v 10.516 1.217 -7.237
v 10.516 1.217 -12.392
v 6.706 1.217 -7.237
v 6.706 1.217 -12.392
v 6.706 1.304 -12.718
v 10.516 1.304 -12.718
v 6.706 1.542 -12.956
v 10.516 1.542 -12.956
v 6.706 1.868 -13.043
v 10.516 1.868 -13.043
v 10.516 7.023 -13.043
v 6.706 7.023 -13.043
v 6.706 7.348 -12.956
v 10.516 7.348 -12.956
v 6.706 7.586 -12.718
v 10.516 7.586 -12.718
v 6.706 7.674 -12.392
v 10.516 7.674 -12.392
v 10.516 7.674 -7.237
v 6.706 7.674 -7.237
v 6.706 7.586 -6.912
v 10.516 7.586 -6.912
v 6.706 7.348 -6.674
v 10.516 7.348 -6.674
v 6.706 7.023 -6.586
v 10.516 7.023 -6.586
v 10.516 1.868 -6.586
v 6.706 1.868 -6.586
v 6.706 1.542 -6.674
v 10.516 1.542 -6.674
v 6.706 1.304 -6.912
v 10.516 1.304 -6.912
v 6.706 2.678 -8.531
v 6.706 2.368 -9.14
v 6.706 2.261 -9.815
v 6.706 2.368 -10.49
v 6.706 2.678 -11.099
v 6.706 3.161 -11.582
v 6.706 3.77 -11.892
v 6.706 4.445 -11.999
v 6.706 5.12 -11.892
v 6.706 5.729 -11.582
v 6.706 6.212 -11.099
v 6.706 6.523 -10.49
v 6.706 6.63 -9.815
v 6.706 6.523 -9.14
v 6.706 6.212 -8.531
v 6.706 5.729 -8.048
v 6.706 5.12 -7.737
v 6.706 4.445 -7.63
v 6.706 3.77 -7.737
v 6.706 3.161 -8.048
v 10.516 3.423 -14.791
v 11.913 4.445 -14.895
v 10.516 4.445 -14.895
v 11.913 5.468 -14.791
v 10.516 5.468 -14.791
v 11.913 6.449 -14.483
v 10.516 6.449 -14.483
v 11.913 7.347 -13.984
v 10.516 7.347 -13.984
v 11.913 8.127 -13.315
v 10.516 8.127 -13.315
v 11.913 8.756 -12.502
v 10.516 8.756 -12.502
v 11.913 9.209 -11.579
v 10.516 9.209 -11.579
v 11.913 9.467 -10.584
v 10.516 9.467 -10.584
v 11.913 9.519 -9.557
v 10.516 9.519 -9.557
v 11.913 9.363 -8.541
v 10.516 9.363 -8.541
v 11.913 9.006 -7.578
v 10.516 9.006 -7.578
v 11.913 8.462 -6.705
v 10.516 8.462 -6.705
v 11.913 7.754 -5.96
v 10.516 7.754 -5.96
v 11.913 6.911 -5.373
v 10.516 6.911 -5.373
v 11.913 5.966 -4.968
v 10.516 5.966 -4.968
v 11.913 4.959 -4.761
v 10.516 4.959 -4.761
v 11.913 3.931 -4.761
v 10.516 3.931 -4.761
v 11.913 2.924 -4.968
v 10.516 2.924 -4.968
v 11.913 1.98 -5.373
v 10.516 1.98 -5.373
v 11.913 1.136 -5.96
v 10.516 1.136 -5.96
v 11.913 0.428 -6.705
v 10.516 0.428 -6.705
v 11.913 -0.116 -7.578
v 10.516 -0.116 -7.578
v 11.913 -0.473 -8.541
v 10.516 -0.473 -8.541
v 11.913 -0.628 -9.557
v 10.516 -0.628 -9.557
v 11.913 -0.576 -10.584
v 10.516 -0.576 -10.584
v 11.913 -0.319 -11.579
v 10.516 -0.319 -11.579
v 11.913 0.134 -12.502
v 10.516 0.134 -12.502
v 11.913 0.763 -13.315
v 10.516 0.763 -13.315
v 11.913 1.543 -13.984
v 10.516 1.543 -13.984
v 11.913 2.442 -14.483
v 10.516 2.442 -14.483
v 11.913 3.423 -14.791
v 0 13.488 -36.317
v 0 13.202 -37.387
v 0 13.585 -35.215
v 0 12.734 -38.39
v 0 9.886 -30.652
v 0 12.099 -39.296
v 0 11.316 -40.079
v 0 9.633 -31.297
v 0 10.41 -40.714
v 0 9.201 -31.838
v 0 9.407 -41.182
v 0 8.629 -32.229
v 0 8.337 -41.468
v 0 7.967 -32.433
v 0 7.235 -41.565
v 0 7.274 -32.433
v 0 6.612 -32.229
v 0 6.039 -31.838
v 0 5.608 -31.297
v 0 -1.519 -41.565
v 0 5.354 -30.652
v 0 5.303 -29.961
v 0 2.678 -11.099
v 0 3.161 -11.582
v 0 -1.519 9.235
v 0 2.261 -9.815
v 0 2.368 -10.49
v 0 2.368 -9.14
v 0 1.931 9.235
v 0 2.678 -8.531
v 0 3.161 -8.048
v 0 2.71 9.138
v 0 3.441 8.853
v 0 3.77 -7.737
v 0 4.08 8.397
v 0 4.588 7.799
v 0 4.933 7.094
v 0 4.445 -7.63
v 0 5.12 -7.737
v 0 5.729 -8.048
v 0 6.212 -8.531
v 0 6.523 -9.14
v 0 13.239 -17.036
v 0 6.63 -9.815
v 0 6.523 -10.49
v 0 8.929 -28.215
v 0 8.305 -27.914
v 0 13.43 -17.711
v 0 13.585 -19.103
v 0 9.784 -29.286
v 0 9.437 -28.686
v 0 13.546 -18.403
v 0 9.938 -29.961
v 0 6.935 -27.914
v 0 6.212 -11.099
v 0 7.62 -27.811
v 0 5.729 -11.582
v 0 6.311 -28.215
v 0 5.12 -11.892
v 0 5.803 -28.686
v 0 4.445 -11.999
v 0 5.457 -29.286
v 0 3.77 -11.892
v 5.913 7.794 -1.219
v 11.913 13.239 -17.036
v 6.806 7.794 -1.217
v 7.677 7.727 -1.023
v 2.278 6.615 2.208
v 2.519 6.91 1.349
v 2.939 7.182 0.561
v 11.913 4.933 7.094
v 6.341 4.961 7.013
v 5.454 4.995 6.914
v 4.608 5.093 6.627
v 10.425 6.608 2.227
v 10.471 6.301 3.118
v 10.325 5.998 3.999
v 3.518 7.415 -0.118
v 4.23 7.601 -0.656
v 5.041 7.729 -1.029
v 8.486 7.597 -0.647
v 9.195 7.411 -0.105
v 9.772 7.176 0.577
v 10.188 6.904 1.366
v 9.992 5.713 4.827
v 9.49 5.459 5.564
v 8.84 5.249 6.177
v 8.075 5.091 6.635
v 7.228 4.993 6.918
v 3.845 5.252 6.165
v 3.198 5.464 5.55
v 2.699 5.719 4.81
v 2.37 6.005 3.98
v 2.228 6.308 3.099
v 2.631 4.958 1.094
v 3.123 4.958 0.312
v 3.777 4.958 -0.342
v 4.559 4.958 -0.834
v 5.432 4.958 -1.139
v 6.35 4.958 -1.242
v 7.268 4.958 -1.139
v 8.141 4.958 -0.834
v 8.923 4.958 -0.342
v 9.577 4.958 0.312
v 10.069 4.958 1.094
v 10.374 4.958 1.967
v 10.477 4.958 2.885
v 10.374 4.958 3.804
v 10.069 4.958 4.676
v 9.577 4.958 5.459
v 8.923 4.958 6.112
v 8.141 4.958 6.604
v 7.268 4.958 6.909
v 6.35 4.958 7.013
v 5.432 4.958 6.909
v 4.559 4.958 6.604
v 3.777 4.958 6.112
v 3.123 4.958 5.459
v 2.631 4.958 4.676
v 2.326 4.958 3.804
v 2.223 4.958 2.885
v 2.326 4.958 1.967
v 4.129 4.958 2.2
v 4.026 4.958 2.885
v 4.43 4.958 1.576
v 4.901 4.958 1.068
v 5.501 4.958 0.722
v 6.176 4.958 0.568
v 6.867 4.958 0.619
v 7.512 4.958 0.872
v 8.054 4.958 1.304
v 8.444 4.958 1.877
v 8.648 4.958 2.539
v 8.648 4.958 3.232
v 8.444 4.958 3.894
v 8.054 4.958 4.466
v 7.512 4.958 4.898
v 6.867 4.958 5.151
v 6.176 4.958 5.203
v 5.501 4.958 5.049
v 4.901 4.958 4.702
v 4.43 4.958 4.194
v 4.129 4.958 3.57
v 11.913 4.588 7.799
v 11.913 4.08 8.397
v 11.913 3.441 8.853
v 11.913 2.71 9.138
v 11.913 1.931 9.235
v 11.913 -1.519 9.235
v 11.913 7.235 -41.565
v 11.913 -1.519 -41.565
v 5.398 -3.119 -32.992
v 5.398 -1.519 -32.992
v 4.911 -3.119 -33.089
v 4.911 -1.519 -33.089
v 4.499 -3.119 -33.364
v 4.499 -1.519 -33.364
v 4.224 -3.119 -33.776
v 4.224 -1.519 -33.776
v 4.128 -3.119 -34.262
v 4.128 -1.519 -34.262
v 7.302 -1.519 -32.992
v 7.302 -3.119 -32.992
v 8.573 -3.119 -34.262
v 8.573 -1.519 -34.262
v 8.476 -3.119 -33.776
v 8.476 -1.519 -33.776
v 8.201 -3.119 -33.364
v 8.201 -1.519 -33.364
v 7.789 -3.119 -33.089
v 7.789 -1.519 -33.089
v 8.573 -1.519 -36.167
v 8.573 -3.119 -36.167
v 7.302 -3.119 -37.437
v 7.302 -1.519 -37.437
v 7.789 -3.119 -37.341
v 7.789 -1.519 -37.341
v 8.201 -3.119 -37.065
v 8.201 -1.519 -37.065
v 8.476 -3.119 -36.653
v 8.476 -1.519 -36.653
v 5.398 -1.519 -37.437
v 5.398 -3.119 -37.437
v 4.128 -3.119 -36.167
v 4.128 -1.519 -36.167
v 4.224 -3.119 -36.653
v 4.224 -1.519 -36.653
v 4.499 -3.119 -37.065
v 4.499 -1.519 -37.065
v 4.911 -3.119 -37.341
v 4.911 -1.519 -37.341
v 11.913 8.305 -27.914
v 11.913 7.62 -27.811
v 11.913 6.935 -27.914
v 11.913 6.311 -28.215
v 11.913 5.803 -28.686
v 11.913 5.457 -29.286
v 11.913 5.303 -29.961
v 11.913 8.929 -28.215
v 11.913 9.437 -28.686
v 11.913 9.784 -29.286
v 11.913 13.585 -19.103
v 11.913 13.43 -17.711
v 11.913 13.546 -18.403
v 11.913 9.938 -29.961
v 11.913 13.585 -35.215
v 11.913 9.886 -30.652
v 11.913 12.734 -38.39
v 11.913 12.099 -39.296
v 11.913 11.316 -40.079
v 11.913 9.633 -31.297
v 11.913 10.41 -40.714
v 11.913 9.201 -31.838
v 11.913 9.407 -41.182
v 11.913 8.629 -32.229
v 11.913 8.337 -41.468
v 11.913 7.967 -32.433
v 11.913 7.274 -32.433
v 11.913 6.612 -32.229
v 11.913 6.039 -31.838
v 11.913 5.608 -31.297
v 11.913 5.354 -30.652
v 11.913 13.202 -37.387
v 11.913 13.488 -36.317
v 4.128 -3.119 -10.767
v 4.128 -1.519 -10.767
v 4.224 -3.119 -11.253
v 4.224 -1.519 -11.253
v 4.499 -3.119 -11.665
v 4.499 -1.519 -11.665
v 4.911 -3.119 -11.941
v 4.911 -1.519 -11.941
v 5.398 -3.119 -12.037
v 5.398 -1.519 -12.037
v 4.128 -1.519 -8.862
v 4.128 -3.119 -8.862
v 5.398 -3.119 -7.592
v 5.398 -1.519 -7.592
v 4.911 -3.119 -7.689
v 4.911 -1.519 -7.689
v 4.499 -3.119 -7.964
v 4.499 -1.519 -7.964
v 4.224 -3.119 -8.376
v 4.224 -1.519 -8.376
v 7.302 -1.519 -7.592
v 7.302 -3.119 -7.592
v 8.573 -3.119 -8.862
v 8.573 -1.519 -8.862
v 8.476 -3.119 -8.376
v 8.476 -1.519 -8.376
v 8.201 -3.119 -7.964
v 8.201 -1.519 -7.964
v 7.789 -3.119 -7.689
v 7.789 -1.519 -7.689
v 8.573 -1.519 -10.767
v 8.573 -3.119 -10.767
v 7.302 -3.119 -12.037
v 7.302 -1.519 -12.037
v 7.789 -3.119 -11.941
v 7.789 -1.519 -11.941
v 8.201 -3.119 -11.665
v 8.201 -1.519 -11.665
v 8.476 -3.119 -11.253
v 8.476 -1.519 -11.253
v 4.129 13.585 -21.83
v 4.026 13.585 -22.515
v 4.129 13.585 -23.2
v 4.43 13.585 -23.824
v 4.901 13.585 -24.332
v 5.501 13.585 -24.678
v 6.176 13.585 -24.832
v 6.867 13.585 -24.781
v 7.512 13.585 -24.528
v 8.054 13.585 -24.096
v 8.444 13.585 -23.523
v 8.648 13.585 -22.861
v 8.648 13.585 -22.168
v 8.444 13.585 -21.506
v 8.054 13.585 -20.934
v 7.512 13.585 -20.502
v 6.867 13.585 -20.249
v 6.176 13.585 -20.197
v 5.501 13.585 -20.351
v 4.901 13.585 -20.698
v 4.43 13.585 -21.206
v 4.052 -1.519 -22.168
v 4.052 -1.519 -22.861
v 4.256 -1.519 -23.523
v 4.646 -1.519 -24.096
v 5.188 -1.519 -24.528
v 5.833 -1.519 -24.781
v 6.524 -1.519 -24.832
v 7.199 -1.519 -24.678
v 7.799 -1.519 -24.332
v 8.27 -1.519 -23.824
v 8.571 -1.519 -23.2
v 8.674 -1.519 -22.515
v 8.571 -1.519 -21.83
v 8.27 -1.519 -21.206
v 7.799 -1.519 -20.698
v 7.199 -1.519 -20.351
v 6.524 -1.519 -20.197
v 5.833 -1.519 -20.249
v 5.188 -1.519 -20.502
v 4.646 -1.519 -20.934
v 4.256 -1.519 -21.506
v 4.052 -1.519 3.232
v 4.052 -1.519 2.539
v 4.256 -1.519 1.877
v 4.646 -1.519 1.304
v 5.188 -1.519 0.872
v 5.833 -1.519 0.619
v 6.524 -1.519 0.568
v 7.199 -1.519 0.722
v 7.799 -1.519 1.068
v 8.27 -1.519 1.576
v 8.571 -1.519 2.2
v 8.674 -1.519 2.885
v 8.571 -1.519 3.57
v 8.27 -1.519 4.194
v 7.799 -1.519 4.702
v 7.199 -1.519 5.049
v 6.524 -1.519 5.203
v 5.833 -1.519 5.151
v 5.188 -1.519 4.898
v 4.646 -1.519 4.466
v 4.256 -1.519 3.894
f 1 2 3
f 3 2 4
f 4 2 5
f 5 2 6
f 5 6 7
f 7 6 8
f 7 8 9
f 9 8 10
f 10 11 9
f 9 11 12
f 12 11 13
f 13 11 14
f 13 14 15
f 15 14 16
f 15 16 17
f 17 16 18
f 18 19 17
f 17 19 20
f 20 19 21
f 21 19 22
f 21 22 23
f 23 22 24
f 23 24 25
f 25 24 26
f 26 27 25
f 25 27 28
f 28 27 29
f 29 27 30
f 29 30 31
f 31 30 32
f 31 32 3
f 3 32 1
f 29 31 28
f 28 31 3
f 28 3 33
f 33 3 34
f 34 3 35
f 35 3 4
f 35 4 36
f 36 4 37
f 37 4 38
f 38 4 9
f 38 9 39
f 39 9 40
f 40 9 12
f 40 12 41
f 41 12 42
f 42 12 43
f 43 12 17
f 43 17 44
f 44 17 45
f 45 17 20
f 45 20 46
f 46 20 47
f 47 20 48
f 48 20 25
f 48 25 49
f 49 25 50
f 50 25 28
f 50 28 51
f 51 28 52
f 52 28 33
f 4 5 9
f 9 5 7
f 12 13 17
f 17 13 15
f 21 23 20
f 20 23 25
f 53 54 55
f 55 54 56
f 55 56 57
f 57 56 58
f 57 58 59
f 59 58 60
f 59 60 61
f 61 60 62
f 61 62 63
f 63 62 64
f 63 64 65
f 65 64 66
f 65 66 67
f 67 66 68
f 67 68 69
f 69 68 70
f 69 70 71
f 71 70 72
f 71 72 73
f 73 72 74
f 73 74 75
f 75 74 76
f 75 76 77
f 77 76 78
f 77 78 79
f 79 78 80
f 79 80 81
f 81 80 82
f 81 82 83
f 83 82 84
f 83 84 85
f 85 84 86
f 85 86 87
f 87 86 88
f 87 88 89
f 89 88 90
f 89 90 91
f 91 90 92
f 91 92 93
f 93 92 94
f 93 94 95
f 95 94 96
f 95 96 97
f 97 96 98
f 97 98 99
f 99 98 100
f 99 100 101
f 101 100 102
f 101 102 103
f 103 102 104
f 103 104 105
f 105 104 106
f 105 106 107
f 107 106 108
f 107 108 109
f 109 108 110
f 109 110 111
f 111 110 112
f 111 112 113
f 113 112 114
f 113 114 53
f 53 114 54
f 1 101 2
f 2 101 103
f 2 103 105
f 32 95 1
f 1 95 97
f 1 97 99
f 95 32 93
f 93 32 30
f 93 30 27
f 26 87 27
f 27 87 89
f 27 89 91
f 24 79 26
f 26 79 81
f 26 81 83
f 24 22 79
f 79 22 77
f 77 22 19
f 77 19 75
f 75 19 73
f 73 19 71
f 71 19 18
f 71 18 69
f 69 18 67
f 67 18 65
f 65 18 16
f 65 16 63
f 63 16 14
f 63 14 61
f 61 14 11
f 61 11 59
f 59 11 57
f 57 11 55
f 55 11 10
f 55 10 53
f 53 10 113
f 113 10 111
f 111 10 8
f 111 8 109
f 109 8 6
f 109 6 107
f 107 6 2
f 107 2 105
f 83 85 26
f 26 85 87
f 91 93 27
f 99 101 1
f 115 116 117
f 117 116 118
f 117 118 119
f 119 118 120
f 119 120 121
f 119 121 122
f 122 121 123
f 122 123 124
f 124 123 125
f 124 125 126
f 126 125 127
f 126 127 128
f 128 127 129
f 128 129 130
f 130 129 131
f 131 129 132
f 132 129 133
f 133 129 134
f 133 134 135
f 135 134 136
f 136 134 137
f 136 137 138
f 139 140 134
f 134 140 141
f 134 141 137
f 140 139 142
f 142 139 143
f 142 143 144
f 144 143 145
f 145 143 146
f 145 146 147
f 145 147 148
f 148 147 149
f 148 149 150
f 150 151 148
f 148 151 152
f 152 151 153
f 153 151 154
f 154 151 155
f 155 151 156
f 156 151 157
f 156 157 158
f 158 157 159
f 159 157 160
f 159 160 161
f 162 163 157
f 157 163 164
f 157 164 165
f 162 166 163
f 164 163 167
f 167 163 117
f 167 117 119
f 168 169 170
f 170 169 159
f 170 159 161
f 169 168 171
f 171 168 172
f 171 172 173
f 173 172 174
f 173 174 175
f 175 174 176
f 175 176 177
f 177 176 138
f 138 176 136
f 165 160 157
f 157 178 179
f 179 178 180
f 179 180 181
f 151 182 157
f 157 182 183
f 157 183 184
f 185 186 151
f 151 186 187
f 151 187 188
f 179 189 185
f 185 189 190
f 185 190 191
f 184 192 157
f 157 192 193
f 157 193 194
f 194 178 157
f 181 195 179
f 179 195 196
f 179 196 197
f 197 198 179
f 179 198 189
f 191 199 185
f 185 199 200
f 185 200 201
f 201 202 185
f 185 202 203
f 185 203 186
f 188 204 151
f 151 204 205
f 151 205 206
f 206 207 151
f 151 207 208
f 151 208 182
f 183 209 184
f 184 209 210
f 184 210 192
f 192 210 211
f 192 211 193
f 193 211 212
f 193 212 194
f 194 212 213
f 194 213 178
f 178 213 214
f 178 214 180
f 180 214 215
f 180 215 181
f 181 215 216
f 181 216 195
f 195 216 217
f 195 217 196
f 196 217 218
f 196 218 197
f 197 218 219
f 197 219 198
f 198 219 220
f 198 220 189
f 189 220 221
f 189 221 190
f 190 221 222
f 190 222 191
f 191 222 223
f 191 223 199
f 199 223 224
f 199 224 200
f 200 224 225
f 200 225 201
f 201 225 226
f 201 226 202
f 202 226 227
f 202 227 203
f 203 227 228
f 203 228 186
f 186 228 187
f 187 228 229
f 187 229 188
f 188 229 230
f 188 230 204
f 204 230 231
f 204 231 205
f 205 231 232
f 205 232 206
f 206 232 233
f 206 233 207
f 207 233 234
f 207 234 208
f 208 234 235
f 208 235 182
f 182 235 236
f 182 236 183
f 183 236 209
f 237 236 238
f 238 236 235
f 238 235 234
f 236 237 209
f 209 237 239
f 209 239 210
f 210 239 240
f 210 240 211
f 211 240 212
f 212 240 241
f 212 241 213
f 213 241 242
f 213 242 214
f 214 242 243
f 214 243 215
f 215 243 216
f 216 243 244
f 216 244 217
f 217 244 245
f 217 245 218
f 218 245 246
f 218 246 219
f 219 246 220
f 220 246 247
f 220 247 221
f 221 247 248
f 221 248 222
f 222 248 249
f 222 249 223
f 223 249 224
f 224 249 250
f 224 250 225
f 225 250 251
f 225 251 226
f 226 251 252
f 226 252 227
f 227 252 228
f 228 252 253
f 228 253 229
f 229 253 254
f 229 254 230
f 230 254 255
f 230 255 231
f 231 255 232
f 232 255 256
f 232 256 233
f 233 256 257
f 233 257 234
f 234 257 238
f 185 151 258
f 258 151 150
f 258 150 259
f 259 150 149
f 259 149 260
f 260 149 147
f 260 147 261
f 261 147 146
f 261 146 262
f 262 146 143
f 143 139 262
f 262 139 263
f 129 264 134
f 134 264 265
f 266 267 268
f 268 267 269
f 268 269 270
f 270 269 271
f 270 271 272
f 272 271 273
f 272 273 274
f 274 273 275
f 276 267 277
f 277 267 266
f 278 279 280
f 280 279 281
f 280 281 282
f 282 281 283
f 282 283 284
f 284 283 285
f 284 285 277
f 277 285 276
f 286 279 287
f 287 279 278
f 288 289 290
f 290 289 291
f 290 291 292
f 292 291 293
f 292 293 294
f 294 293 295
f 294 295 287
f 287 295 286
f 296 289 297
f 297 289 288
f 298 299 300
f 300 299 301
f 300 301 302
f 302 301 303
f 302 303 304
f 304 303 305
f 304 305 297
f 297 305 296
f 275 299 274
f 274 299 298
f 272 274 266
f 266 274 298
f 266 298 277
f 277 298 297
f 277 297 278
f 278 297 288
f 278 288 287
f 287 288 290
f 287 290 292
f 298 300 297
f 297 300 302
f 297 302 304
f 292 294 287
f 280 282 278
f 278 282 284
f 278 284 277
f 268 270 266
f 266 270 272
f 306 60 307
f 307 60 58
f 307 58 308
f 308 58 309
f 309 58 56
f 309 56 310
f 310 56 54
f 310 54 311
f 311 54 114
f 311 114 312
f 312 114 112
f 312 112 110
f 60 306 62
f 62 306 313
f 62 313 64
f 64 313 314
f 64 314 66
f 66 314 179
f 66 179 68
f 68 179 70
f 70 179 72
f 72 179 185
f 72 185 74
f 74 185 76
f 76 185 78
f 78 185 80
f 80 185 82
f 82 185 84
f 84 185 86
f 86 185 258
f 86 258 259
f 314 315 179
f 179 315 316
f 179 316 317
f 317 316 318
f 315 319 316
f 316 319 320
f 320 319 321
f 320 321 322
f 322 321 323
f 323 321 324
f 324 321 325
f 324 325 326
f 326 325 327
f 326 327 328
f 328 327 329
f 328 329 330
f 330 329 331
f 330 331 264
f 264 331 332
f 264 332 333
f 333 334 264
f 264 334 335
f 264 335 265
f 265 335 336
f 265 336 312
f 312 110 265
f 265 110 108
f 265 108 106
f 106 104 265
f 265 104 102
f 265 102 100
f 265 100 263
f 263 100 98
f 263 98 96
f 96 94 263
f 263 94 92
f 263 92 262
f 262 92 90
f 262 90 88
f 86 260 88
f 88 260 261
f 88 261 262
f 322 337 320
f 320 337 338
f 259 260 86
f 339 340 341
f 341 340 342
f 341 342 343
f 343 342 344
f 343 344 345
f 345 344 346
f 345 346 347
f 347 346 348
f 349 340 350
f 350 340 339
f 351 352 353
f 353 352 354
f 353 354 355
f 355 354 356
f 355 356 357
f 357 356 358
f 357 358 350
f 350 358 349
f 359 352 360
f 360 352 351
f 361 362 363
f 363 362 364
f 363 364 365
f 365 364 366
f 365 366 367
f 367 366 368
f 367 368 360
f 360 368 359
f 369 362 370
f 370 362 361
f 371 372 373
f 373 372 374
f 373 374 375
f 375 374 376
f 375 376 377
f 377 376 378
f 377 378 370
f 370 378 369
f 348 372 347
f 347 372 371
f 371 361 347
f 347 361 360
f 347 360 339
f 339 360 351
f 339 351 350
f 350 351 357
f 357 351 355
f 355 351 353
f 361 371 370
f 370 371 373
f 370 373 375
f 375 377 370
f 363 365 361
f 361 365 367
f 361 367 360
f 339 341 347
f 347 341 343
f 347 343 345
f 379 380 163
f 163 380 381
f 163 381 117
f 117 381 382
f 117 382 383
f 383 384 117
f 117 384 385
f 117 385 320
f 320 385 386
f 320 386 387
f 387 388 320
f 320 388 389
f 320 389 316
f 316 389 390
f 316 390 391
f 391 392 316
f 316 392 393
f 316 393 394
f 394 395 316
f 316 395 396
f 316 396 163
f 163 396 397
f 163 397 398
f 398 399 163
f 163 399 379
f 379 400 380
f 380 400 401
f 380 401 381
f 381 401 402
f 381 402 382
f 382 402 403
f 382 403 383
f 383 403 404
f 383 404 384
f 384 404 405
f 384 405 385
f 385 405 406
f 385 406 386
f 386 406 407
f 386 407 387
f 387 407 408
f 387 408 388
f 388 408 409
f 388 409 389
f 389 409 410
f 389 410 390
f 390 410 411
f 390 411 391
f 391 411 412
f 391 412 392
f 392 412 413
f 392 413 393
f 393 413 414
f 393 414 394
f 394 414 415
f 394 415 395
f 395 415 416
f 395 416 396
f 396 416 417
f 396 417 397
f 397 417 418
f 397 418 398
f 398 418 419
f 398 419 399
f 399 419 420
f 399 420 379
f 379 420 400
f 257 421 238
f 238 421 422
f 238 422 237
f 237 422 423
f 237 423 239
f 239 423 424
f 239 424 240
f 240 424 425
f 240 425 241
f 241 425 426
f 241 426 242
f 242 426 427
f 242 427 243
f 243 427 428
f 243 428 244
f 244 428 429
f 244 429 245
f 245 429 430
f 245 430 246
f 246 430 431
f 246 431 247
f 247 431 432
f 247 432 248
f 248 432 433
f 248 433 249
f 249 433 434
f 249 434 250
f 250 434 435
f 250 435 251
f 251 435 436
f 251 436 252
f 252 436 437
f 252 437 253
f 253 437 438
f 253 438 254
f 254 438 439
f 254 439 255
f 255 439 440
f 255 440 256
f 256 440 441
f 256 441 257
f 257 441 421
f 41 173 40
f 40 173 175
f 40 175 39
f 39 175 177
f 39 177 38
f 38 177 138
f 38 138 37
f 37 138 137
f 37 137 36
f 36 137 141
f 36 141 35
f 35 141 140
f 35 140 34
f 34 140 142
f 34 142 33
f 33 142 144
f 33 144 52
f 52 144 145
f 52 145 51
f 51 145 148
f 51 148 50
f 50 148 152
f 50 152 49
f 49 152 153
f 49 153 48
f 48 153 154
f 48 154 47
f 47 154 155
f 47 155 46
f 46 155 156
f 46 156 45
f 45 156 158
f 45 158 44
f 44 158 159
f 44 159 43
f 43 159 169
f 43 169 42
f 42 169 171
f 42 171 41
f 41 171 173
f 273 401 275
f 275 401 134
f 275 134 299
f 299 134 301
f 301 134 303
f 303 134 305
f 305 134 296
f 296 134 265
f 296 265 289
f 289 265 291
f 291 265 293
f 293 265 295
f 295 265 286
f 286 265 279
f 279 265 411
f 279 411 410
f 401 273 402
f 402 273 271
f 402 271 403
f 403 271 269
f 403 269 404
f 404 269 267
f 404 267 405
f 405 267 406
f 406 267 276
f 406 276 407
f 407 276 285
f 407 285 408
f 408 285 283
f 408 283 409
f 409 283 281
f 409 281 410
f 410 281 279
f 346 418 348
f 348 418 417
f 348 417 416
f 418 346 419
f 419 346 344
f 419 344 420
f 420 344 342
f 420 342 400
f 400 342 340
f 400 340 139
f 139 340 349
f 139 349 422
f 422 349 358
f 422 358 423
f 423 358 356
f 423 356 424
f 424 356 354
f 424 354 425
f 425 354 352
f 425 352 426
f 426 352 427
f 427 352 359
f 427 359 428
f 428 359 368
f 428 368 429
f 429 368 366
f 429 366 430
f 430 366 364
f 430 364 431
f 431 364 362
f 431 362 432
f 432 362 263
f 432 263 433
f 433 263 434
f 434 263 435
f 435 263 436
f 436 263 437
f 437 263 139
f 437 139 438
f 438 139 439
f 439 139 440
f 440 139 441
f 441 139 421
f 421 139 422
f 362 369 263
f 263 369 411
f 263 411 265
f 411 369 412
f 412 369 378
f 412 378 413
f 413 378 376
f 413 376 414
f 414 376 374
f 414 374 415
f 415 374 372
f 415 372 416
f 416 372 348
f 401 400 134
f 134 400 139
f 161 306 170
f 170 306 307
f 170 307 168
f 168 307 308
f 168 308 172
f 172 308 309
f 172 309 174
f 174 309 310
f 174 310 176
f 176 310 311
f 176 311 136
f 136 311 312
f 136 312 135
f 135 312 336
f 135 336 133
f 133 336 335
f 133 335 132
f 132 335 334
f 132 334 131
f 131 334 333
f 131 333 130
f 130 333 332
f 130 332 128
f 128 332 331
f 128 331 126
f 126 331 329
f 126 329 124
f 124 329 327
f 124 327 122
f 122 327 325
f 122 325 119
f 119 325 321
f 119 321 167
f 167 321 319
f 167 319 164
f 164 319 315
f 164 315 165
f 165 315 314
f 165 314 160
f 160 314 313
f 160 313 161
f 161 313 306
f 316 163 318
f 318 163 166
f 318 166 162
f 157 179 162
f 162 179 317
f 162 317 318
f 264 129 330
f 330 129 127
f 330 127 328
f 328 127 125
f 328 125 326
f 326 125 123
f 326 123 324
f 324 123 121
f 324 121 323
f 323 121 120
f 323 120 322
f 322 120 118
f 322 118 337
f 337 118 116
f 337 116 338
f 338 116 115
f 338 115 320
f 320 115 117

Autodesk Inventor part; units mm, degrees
ref_plane "YZ Plane" through (0, 0, 0) normal (1, 0, 0) x (0, 1, 0)
ref_plane "XZ Plane" through (0, 0, 0) normal (0, 1, 0) x (-1, 0, 0)
ref_plane "XY Plane" through (0, 0, 0) normal (0, 0, 1) x (1, 0, 0)
sketch "Sketch1" plane through (0, 0, 0) normal (1, 0, 0) x (0, 1, 0)
  line L0 (-1.51927, 9.235223) -> (-1.51927, -28.864777)
  circle A0 centre (4.445248, -9.814777) radius 2.1844
  circle A1 centre (4.445248, -9.814777) radius 5.964518
  line L1 (4.445248, -9.814777) -> (-1.51927, -9.814777)
  line L2 (-1.51927, -9.814777) -> (-1.51927, 9.235223)
  line L3 (-1.51927, 9.235223) -> (-1.51927, -28.864777)
  line L4 (-1.51927, 9.235223) -> (1.02073, 9.235223)
  line L5 (1.02073, 9.235223) -> (9.344761, -6.41327)
  line L6 (-1.51927, -28.864777) -> (1.02073, -28.864777)
  line L7 (1.02073, -28.864777) -> (9.344761, -13.216284)
  point P0 (0, 0)
  dimension "d0" = 5.96452
  dimension "d1" = 19.05
  dimension "d2" = 38.1
  dimension "d3" = 2.54
extrude "Extrusion1" add sketch "Sketch1" along normal blind 11.9126
sketch "Sketch2" plane through (0, -1.51927, -28.864777) normal (0, -1, 0) x (1, 0, 0)
  line L0 (0, 38.1) -> (0, 0) projected
  line L1 (0, 0) -> (11.9126, 0) projected
  line L2 (11.9126, 38.1) -> (11.9126, 0) projected
  line L3 (0, 38.1) -> (11.9126, 38.1) projected
  line L4 (0, 38.1) -> (6.35, 38.1)
  line L5 (6.35, 38.1) -> (6.35, 0)
  line L6 (6.35, 38.1) -> (6.35, 31.75)
  line L7 (6.35, 31.75) -> (6.35, 6.35)
  line L8 (6.35, 6.35) -> (6.35, 0)
  circle A0 centre (6.35, 31.75) radius 2.3241
  circle A1 centre (6.35, 6.35) radius 2.3241
  circle A2 centre (6.35, 19.05) radius 2.2225
  point P0 (0, 28.864777)
  dimension "d6" = 6.35
  dimension "d7" = 6.35
  dimension "d8" = 25.4
  dimension "d9" = 4.6482
  dimension "d10" = 4.445
extrude "Extrusion2" cut sketch "Sketch2" against normal through all contours A0 L5 | L5 A0 | A1 L5 | L5 A1
sketch "Sketch3" plane through (11.9126, 0, 0) normal (1, 0, 0) x (0, 0, -1)
  line L0 (28.864777, -1.51927) -> (28.864777, 1.02073)
  line L1 (28.864777, 1.02073) -> (13.216284, 9.344761)
  arc A0 (13.216284, 9.344761) -> (6.41327, 9.344761) centre (9.814777, 4.445248) ccw
  line L2 (6.41327, 9.344761) -> (-9.235223, 1.02073)
  line L3 (-9.235223, 1.02073) -> (-9.235223, -1.51927)
  line L4 (-9.235223, -1.51927) -> (28.864777, -1.51927)
  circle A1 centre (9.814777, 4.445248) radius 2.1844
  line L5 (9.814777, 10.409766) -> (28.864777, 10.409766)
  line L6 (28.864777, 10.409766) -> (28.864777, -1.51927)
  line L7 (20.190677, 5.634815) -> (24.838877, 3.16226)
  line L8 (24.838877, -1.51927) -> (20.190677, -1.51927)
  line L9 (22.514777, -1.51927) -> (22.514777, 10.409766)
  line L10 (22.514777, 10.409766) -> (35.214777, 10.409766)
  line L11 (35.214777, 10.409766) -> (35.214777, -1.51927)
  line L12 (35.214777, -1.51927) -> (28.864777, -1.51927)
  line L13 (-9.235223, 1.02073) -> (-9.235223, 4.19573)
  line L14 (-9.235223, 4.19573) -> (7.873428, 10.084986)
  point P0 (0, 0)
  dimension "d13" = 12.7
  dimension "d14" = 3.175
extrude "Extrusion3" add sketch "Sketch3" against normal up to surface (11.9126 mm away) contours L0 L6 L10 L11 L12 | L1 L9 L5 L6 | L1 A0 L5 L9 | A0 L2 L13 L14
sketch "Sketch4" plane through (0, -1.51927, 9.235223) normal (0, -1, 0) x (1, 0, 0)
  circle A0 centre (6.35, -31.75) radius 2.3241 projected
  circle A1 centre (6.35, -6.35) radius 2.3241 projected
  line L0 (0, 0) -> (0, -44.45) projected
  line L1 (11.9126, -44.45) -> (0, -44.45) projected
  line L2 (11.9126, 0) -> (11.9126, -44.45) projected
  line L3 (0, 0) -> (11.9126, 0) projected
  point P0 (0, -9.235223)
extrude "Extrusion4" cut sketch "Sketch4" against normal through all contours A0 | A1
sketch "Sketch6" plane through (0, -1.51927, 9.235223) normal (0, -1, 0) x (1, 0, 0)
  line L0 (11.9126, -16.8656) -> (0, -16.8656) projected
  circle A0 centre (6.35, -31.75) radius 2.3241 projected
  circle A1 centre (6.35, -6.35) radius 2.3241 projected
  line L1 (0, 0) -> (0, -44.45) projected
  line L2 (11.9126, -44.45) -> (0, -44.45) projected
  line L3 (11.9126, 0) -> (11.9126, -44.45) projected
  line L4 (0, 0) -> (11.9126, 0) projected
  line L5 (6.35, -6.35) -> (6.35, -19.05)
  circle A2 centre (6.35, -19.05) radius 2.2225
  line L6 (7.3025, -16.8275) -> (5.3975, -16.8275)
  line L7 (4.1275, -18.0975) -> (4.1275, -20.0025)
  line L8 (5.3975, -21.2725) -> (7.3025, -21.2725)
  line L9 (8.5725, -20.0025) -> (8.5725, -18.0975)
  arc A3 (8.5725, -18.0975) -> (7.3025, -16.8275) centre (7.3025, -18.0975) ccw
  arc A4 (7.3025, -21.2725) -> (8.5725, -20.0025) centre (7.3025, -20.0025) ccw
  arc A5 (5.3975, -16.8275) -> (4.1275, -18.0975) centre (5.3975, -18.0975) ccw
  arc A6 (4.1275, -20.0025) -> (5.3975, -21.2725) centre (5.3975, -20.0025) ccw
  point P0 (0, -9.235223)
  dimension "d20" = 12.7
  dimension "d21" = 4.445
  dimension "d22" = 1.27
sketch "Sketch6 outline for Extrusion5" plane through (0, -1.51927, 9.235223) normal (0, -1, 0) x (1, 0, 0)
  arc A0 (4.1275, -20.0025) -> (5.3975, -21.2725) centre (5.3975, -20.0025) ccw
  line L0 (4.1275, -18.0975) -> (4.1275, -20.0025)
  arc A1 (5.3975, -16.8275) -> (4.1275, -18.0975) centre (5.3975, -18.0975) ccw
  line L1 (7.3025, -16.8275) -> (5.3975, -16.8275)
  arc A2 (8.5725, -18.0975) -> (7.3025, -16.8275) centre (7.3025, -18.0975) ccw
  line L2 (8.5725, -20.0025) -> (8.5725, -18.0975)
  arc A3 (7.3025, -21.2725) -> (8.5725, -20.0025) centre (7.3025, -20.0025) ccw
  line L3 (5.3975, -21.2725) -> (7.3025, -21.2725)
extrude "Extrusion5" add sketch "Sketch6 outline for Extrusion5" along normal blind 1.6002
sketch "Sketch7" plane through (0, -1.51927, 9.235223) normal (0, -1, 0) x (1, 0, 0)
  arc A0 (4.1275, -20.0025) -> (5.3975, -21.2725) centre (5.3975, -20.0025) ccw projected
  line L0 (4.1275, -20.0025) -> (4.1275, -18.0975) projected
  arc A1 (5.3975, -16.8275) -> (4.1275, -18.0975) centre (5.3975, -18.0975) ccw projected
  line L1 (5.3975, -16.8275) -> (7.3025, -16.8275) projected
  arc A2 (8.5725, -18.0975) -> (7.3025, -16.8275) centre (7.3025, -18.0975) ccw projected
  line L2 (8.5725, -18.0975) -> (8.5725, -20.0025) projected
  arc A3 (7.3025, -21.2725) -> (8.5725, -20.0025) centre (7.3025, -20.0025) ccw projected
  line L3 (7.3025, -21.2725) -> (5.3975, -21.2725) projected
  circle A4 centre (6.35, -31.75) radius 2.3241 projected
  circle A5 centre (6.35, -6.35) radius 2.3241 projected
  line L4 (0, 0) -> (0, -44.45) projected
  line L5 (11.9126, -44.45) -> (0, -44.45) projected
  line L6 (11.9126, 0) -> (11.9126, -44.45) projected
  line L7 (0, 0) -> (11.9126, 0) projected
  line L8 (11.9126, -44.45) -> (11.9126, -50.8)
  line L9 (11.9126, 0) -> (11.9126, -44.45) projected
  line L10 (11.9126, -50.8) -> (0, -50.8)
  line L11 (0, -50.8) -> (0, -44.45)
  line L12 (6.35, -31.75) -> (6.35, -44.45)
  circle A6 centre (6.35, -44.45) radius 2.2225
  line L13 (7.3025, -42.2275) -> (5.3975, -42.2275)
  line L14 (4.1275, -43.4975) -> (4.1275, -45.4025)
  line L15 (5.3975, -46.6725) -> (7.3025, -46.6725)
  line L16 (8.5725, -45.4025) -> (8.5725, -43.4975)
  arc A7 (8.5725, -43.4975) -> (7.3025, -42.2275) centre (7.3025, -43.4975) ccw
  arc A8 (7.3025, -46.6725) -> (8.5725, -45.4025) centre (7.3025, -45.4025) ccw
  arc A9 (4.1275, -45.4025) -> (5.3975, -46.6725) centre (5.3975, -45.4025) ccw
  arc A10 (5.3975, -42.2275) -> (4.1275, -43.4975) centre (5.3975, -43.4975) ccw
  point P0 (0, -9.235223)
  dimension "d25" = 6.35
  dimension "d26" = 12.7
  dimension "d27" = 4.445
  dimension "d28" = 1.27
extrude "Extrusion6" add sketch "Sketch7" against normal up to surface (11.929036 mm away) contours L5 L14 A9 L15 A8 L16 L8 L10 L11 | L5 A6 | A6 L15 A9 L14 | A6 L16 A8 L15
extrude "Extrusion7" add sketch "Sketch7" along normal blind 1.6002 contours A6 L12 L5 | L14 A10 L13 A6 | L5 A6 | A6 L15 A9 L14 | L12 A6 L5 | L13 A7 L16 A6 | A6 L16 A8 L15
sketch "Sketch8" plane through (11.9126, 0, 0) normal (1, 0, 0) x (0, 0, -1)
  line L0 (24.838877, -1.51927) -> (24.838877, 10.409766)
  arc A0 (9.814777, 10.409766) -> (7.873428, 10.084986) centre (9.814777, 4.445248) ccw
  line L1 (7.873428, 10.084986) -> (-9.235223, 4.19573)
  line L2 (-9.235223, 4.19573) -> (-9.235223, -1.51927)
  line L3 (-9.235223, -1.51927) -> (41.564777, -1.51927)
  line L4 (41.564777, -1.51927) -> (41.564777, 10.409766)
  line L5 (41.564777, 10.409766) -> (9.814777, 10.409766)
  circle A1 centre (9.814777, 4.445248) radius 2.1844
  line L6 (-9.235223, 4.19573) -> (18.040506, 13.584766)
  line L7 (14.316656, 13.584766) -> (41.564777, 13.584766)
  line L8 (41.564777, 13.584766) -> (41.564777, 10.409766)
  point P0 (0, 0)
  point P1 (7.873428, 10.084986)
extrude "Extrusion8" add sketch "Sketch8" against normal up to surface (11.9126 mm away) contours L5 A0 L6 L7 L8
sketch "Sketch9" plane through (11.9126, 0, 0) normal (1, 0, 0) x (0, 0, -1)
  line L0 (18.040506, 13.584766) -> (-9.235223, 4.19573)
  line L1 (-9.235223, 4.19573) -> (-9.235223, -1.51927)
  line L2 (-9.235223, -1.51927) -> (41.564777, -1.51927)
  line L3 (41.564777, -1.51927) -> (41.564777, 13.584766)
  line L4 (41.564777, 13.584766) -> (18.040506, 13.584766)
  circle A0 centre (9.814777, 4.445248) radius 2.1844
  line L5 (9.814777, 4.445248) -> (35.214777, 4.445248)
  line L6 (35.214777, 4.445248) -> (35.214777, 7.620248)
  circle A1 centre (35.214777, 7.620248) radius 2.3241
  circle A2 centre (35.214777, 7.620248) radius 5.08
  line L7 (35.214777, 7.620248) -> (30.134777, 7.620248)
  circle A3 centre (30.134777, 7.620248) radius 2.3241
  point P0 (0, 0)
  dimension "d36" = 25.4
  dimension "d37" = 3.175
  dimension "d38" = 4.6482
  dimension "d49" = 10.16
  dimension "d57" = 5.08
  dimension "d58" = 4.6482
fillet "Fillet1" radius 3.175 1 edges at (5.9563, 4.1957, 9.2352)
sketch "Sketch10" plane through (11.9126, 0, 0) normal (1, 0, 0) x (0, 0, -1)
  line L0 (-5.209323, 5.581553) -> (-0.561123, 7.181587)
  line L1 (-0.561123, -1.51927) -> (-5.209323, -1.51927)
  line L2 (-2.885223, 6.38157) -> (-0.561123, 6.38157)
  line L3 (-0.561123, -1.51927) -> (-0.561123, 7.181587)
  line L4 (-0.561123, 6.38157) -> (-5.209323, 6.38157)
  line L5 (-5.209323, -1.51927) -> (-5.209323, 5.581553)
  line L6 (-0.561123, 6.38157) -> (-0.561123, 8.069179)
  line L7 (-0.561123, 8.069179) -> (-5.209323, 8.069179)
  line L8 (-5.209323, 8.069179) -> (-5.209323, 5.581553)
  point P0 (0, 0)
extrude "Extrusion9" add sketch "Sketch10" against normal up to surface (11.9126 mm away) contours L8 L4 L0 | L4 L8 L7 L6 L0
sketch "Sketch11" plane through (11.9126, 8.069179, 5.209323) normal (0, 1, 0) x (1, 0, 0)
  arc A0 (-5.5626, 4.6482) -> (-5.5626, 0) centre (-5.5626, 2.3241) ccw projected
  arc A1 (-5.5626, 0) -> (-5.5626, 4.6482) centre (-5.5626, 2.3241) ccw projected
  circle A2 centre (-5.5626, 2.3241) radius 2.3241 projected
  arc A3 (-5.5626, 4.6482) -> (-5.5626, 0) centre (-5.5626, 2.3241) ccw projected
  circle A4 centre (-5.5626, 2.3241) radius 4.1275
  point P0 (-11.9126, 5.209323)
  dimension "d42" = 8.255
extrude "Extrusion10" cut sketch "Sketch11" against normal blind 3.1115 contours A1 A0 | A4
sketch "Sketch12" plane through (11.9126, 0, 0) normal (1, 0, 0) x (0, 0, -1)
  circle A0 centre (9.814777, 4.445248) radius 2.1844
  arc A1 (-7.093632, 4.932923) -> (-9.235223, 1.930809) centre (-6.060223, 1.930809) ccw
  line L0 (-9.235223, 1.930809) -> (-9.235223, -1.51927)
  line L1 (-9.235223, -1.51927) -> (41.564777, -1.51927)
  line L2 (41.564777, -1.51927) -> (41.564777, 13.584766)
  line L3 (41.564777, 13.584766) -> (18.040506, 13.584766)
  line L4 (18.040506, 13.584766) -> (-0.561123, 7.181587)
  line L5 (-0.561123, 7.181587) -> (-0.561123, 8.069179)
  line L6 (-0.561123, 8.069179) -> (-5.209323, 8.069179)
  line L7 (-5.209323, 8.069179) -> (-5.209323, 5.581553)
  line L8 (-5.209323, 5.581553) -> (-7.093632, 4.932923)
  line L9 (-5.209323, 5.581553) -> (-0.561123, 7.181587)
  point P0 (0, 0)
extrude "Extrusion11" cut sketch "Sketch12" along normal through all both and the other way through all contours L7 L6 L5 L9
sketch "Sketch13" plane through (0, -1.51927, 9.235223) normal (0, -1, 0) x (1, 0, 0)
  circle A0 centre (6.35, -6.35) radius 4.1275 projected
  arc A1 (5.3975, -42.2275) -> (4.1275, -43.4975) centre (5.3975, -43.4975) ccw projected
  line L0 (5.3975, -42.2275) -> (7.3025, -42.2275) projected
  arc A2 (8.5725, -43.4975) -> (7.3025, -42.2275) centre (7.3025, -43.4975) ccw projected
  line L1 (8.5725, -43.4975) -> (8.5725, -45.4025) projected
  arc A3 (7.3025, -46.6725) -> (8.5725, -45.4025) centre (7.3025, -45.4025) ccw projected
  line L2 (7.3025, -46.6725) -> (5.3975, -46.6725) projected
  arc A4 (4.1275, -45.4025) -> (5.3975, -46.6725) centre (5.3975, -45.4025) ccw projected
  line L3 (4.1275, -45.4025) -> (4.1275, -43.4975) projected
  arc A5 (4.1275, -20.0025) -> (5.3975, -21.2725) centre (5.3975, -20.0025) ccw projected
  line L4 (4.1275, -20.0025) -> (4.1275, -18.0975) projected
  arc A6 (5.3975, -16.8275) -> (4.1275, -18.0975) centre (5.3975, -18.0975) ccw projected
  line L5 (5.3975, -16.8275) -> (7.3025, -16.8275) projected
  arc A7 (8.5725, -18.0975) -> (7.3025, -16.8275) centre (7.3025, -18.0975) ccw projected
  line L6 (8.5725, -18.0975) -> (8.5725, -20.0025) projected
  arc A8 (7.3025, -21.2725) -> (8.5725, -20.0025) centre (7.3025, -20.0025) ccw projected
  line L7 (7.3025, -21.2725) -> (5.3975, -21.2725) projected
  circle A9 centre (6.35, -31.75) radius 2.3241 projected
  circle A10 centre (6.35, -6.35) radius 2.3241 projected
  line L8 (0, 0) -> (0, -50.8) projected
  line L9 (0, -50.8) -> (11.9126, -50.8) projected
  line L10 (11.9126, 0) -> (11.9126, -50.8) projected
  line L11 (0, 0) -> (11.9126, 0) projected
  point P0 (0, -9.235223)
extrude "Extrusion12" cut sketch "Sketch13" along normal through all both and the other way through all contours A9
extrude "Extrusion13" [suppressed]
sketch "Sketch14" plane through (11.9126, 0, 0) normal (1, 0, 0) x (0, 0, -1)
  line L0 (18.040506, 13.584766) -> (-7.093632, 4.932923)
  arc A0 (-7.093632, 4.932923) -> (-9.235223, 1.930809) centre (-6.060223, 1.930809) ccw
  line L1 (-9.235223, 1.930809) -> (-9.235223, -1.51927)
  line L2 (-9.235223, -1.51927) -> (41.564777, -1.51927)
  line L3 (41.564777, -1.51927) -> (41.564777, 13.584766)
  line L4 (41.564777, 13.584766) -> (18.040506, 13.584766)
  circle A1 centre (9.814777, 4.445248) radius 2.1844
  circle A2 centre (9.814777, 4.445248) radius 5.08
  point P0 (0, 0)
  dimension "d52" = 10.16
extrude "Extrusion14" cut sketch "Sketch14" against normal blind 1.397 contours A2
sketch "Sketch15" plane through (10.5156, 4.445248, -9.814777) normal (1, 0, 0) x (0, 0, -1)
  line L0 (-3.22834, 2.577465) -> (-3.22834, -2.577465)
  circle A0 centre (0, 0) radius 2.032
  line L1 (-2.577465, -3.22834) -> (2.577465, -3.22834)
  arc A1 (-3.22834, -2.577465) -> (-2.577465, -3.22834) centre (-2.577465, -2.577465) ccw
  arc A2 (-2.577465, 3.22834) -> (-3.22834, 2.577465) centre (-2.577465, 2.577465) ccw
  line L2 (2.577465, 3.22834) -> (-2.577465, 3.22834)
  arc A3 (3.22834, 2.577465) -> (2.577465, 3.22834) centre (2.577465, 2.577465) ccw
  line L3 (3.22834, -2.577465) -> (3.22834, 2.577465)
  arc A4 (2.577465, -3.22834) -> (3.22834, -2.577465) centre (2.577465, -2.577465) ccw
  circle A5 centre (0, 0) radius 5.08
  circle A6 centre (0, 0) radius 2.1844
  point P0 (-9.814777, -4.445248)
extrude "Extrusion15" cut sketch "Sketch15" against normal blind 3.81 contours A2 L2 A3 L3 A4 L1 A1 L0
extrude "Extrusion16" cut sketch "Sketch9" along normal through all both and the other way through all contours A3 A2 | A2 L7 A3 | A2 A3 L7
fillet "Fillet2" radius 6.35 1 edges at (5.9563, 13.5848, -18.0405)
fillet "Fillet3" radius 6.35 1 edges at (5.9563, 13.5848, -41.5648)
properties part number "Pass_Hang_Block"
